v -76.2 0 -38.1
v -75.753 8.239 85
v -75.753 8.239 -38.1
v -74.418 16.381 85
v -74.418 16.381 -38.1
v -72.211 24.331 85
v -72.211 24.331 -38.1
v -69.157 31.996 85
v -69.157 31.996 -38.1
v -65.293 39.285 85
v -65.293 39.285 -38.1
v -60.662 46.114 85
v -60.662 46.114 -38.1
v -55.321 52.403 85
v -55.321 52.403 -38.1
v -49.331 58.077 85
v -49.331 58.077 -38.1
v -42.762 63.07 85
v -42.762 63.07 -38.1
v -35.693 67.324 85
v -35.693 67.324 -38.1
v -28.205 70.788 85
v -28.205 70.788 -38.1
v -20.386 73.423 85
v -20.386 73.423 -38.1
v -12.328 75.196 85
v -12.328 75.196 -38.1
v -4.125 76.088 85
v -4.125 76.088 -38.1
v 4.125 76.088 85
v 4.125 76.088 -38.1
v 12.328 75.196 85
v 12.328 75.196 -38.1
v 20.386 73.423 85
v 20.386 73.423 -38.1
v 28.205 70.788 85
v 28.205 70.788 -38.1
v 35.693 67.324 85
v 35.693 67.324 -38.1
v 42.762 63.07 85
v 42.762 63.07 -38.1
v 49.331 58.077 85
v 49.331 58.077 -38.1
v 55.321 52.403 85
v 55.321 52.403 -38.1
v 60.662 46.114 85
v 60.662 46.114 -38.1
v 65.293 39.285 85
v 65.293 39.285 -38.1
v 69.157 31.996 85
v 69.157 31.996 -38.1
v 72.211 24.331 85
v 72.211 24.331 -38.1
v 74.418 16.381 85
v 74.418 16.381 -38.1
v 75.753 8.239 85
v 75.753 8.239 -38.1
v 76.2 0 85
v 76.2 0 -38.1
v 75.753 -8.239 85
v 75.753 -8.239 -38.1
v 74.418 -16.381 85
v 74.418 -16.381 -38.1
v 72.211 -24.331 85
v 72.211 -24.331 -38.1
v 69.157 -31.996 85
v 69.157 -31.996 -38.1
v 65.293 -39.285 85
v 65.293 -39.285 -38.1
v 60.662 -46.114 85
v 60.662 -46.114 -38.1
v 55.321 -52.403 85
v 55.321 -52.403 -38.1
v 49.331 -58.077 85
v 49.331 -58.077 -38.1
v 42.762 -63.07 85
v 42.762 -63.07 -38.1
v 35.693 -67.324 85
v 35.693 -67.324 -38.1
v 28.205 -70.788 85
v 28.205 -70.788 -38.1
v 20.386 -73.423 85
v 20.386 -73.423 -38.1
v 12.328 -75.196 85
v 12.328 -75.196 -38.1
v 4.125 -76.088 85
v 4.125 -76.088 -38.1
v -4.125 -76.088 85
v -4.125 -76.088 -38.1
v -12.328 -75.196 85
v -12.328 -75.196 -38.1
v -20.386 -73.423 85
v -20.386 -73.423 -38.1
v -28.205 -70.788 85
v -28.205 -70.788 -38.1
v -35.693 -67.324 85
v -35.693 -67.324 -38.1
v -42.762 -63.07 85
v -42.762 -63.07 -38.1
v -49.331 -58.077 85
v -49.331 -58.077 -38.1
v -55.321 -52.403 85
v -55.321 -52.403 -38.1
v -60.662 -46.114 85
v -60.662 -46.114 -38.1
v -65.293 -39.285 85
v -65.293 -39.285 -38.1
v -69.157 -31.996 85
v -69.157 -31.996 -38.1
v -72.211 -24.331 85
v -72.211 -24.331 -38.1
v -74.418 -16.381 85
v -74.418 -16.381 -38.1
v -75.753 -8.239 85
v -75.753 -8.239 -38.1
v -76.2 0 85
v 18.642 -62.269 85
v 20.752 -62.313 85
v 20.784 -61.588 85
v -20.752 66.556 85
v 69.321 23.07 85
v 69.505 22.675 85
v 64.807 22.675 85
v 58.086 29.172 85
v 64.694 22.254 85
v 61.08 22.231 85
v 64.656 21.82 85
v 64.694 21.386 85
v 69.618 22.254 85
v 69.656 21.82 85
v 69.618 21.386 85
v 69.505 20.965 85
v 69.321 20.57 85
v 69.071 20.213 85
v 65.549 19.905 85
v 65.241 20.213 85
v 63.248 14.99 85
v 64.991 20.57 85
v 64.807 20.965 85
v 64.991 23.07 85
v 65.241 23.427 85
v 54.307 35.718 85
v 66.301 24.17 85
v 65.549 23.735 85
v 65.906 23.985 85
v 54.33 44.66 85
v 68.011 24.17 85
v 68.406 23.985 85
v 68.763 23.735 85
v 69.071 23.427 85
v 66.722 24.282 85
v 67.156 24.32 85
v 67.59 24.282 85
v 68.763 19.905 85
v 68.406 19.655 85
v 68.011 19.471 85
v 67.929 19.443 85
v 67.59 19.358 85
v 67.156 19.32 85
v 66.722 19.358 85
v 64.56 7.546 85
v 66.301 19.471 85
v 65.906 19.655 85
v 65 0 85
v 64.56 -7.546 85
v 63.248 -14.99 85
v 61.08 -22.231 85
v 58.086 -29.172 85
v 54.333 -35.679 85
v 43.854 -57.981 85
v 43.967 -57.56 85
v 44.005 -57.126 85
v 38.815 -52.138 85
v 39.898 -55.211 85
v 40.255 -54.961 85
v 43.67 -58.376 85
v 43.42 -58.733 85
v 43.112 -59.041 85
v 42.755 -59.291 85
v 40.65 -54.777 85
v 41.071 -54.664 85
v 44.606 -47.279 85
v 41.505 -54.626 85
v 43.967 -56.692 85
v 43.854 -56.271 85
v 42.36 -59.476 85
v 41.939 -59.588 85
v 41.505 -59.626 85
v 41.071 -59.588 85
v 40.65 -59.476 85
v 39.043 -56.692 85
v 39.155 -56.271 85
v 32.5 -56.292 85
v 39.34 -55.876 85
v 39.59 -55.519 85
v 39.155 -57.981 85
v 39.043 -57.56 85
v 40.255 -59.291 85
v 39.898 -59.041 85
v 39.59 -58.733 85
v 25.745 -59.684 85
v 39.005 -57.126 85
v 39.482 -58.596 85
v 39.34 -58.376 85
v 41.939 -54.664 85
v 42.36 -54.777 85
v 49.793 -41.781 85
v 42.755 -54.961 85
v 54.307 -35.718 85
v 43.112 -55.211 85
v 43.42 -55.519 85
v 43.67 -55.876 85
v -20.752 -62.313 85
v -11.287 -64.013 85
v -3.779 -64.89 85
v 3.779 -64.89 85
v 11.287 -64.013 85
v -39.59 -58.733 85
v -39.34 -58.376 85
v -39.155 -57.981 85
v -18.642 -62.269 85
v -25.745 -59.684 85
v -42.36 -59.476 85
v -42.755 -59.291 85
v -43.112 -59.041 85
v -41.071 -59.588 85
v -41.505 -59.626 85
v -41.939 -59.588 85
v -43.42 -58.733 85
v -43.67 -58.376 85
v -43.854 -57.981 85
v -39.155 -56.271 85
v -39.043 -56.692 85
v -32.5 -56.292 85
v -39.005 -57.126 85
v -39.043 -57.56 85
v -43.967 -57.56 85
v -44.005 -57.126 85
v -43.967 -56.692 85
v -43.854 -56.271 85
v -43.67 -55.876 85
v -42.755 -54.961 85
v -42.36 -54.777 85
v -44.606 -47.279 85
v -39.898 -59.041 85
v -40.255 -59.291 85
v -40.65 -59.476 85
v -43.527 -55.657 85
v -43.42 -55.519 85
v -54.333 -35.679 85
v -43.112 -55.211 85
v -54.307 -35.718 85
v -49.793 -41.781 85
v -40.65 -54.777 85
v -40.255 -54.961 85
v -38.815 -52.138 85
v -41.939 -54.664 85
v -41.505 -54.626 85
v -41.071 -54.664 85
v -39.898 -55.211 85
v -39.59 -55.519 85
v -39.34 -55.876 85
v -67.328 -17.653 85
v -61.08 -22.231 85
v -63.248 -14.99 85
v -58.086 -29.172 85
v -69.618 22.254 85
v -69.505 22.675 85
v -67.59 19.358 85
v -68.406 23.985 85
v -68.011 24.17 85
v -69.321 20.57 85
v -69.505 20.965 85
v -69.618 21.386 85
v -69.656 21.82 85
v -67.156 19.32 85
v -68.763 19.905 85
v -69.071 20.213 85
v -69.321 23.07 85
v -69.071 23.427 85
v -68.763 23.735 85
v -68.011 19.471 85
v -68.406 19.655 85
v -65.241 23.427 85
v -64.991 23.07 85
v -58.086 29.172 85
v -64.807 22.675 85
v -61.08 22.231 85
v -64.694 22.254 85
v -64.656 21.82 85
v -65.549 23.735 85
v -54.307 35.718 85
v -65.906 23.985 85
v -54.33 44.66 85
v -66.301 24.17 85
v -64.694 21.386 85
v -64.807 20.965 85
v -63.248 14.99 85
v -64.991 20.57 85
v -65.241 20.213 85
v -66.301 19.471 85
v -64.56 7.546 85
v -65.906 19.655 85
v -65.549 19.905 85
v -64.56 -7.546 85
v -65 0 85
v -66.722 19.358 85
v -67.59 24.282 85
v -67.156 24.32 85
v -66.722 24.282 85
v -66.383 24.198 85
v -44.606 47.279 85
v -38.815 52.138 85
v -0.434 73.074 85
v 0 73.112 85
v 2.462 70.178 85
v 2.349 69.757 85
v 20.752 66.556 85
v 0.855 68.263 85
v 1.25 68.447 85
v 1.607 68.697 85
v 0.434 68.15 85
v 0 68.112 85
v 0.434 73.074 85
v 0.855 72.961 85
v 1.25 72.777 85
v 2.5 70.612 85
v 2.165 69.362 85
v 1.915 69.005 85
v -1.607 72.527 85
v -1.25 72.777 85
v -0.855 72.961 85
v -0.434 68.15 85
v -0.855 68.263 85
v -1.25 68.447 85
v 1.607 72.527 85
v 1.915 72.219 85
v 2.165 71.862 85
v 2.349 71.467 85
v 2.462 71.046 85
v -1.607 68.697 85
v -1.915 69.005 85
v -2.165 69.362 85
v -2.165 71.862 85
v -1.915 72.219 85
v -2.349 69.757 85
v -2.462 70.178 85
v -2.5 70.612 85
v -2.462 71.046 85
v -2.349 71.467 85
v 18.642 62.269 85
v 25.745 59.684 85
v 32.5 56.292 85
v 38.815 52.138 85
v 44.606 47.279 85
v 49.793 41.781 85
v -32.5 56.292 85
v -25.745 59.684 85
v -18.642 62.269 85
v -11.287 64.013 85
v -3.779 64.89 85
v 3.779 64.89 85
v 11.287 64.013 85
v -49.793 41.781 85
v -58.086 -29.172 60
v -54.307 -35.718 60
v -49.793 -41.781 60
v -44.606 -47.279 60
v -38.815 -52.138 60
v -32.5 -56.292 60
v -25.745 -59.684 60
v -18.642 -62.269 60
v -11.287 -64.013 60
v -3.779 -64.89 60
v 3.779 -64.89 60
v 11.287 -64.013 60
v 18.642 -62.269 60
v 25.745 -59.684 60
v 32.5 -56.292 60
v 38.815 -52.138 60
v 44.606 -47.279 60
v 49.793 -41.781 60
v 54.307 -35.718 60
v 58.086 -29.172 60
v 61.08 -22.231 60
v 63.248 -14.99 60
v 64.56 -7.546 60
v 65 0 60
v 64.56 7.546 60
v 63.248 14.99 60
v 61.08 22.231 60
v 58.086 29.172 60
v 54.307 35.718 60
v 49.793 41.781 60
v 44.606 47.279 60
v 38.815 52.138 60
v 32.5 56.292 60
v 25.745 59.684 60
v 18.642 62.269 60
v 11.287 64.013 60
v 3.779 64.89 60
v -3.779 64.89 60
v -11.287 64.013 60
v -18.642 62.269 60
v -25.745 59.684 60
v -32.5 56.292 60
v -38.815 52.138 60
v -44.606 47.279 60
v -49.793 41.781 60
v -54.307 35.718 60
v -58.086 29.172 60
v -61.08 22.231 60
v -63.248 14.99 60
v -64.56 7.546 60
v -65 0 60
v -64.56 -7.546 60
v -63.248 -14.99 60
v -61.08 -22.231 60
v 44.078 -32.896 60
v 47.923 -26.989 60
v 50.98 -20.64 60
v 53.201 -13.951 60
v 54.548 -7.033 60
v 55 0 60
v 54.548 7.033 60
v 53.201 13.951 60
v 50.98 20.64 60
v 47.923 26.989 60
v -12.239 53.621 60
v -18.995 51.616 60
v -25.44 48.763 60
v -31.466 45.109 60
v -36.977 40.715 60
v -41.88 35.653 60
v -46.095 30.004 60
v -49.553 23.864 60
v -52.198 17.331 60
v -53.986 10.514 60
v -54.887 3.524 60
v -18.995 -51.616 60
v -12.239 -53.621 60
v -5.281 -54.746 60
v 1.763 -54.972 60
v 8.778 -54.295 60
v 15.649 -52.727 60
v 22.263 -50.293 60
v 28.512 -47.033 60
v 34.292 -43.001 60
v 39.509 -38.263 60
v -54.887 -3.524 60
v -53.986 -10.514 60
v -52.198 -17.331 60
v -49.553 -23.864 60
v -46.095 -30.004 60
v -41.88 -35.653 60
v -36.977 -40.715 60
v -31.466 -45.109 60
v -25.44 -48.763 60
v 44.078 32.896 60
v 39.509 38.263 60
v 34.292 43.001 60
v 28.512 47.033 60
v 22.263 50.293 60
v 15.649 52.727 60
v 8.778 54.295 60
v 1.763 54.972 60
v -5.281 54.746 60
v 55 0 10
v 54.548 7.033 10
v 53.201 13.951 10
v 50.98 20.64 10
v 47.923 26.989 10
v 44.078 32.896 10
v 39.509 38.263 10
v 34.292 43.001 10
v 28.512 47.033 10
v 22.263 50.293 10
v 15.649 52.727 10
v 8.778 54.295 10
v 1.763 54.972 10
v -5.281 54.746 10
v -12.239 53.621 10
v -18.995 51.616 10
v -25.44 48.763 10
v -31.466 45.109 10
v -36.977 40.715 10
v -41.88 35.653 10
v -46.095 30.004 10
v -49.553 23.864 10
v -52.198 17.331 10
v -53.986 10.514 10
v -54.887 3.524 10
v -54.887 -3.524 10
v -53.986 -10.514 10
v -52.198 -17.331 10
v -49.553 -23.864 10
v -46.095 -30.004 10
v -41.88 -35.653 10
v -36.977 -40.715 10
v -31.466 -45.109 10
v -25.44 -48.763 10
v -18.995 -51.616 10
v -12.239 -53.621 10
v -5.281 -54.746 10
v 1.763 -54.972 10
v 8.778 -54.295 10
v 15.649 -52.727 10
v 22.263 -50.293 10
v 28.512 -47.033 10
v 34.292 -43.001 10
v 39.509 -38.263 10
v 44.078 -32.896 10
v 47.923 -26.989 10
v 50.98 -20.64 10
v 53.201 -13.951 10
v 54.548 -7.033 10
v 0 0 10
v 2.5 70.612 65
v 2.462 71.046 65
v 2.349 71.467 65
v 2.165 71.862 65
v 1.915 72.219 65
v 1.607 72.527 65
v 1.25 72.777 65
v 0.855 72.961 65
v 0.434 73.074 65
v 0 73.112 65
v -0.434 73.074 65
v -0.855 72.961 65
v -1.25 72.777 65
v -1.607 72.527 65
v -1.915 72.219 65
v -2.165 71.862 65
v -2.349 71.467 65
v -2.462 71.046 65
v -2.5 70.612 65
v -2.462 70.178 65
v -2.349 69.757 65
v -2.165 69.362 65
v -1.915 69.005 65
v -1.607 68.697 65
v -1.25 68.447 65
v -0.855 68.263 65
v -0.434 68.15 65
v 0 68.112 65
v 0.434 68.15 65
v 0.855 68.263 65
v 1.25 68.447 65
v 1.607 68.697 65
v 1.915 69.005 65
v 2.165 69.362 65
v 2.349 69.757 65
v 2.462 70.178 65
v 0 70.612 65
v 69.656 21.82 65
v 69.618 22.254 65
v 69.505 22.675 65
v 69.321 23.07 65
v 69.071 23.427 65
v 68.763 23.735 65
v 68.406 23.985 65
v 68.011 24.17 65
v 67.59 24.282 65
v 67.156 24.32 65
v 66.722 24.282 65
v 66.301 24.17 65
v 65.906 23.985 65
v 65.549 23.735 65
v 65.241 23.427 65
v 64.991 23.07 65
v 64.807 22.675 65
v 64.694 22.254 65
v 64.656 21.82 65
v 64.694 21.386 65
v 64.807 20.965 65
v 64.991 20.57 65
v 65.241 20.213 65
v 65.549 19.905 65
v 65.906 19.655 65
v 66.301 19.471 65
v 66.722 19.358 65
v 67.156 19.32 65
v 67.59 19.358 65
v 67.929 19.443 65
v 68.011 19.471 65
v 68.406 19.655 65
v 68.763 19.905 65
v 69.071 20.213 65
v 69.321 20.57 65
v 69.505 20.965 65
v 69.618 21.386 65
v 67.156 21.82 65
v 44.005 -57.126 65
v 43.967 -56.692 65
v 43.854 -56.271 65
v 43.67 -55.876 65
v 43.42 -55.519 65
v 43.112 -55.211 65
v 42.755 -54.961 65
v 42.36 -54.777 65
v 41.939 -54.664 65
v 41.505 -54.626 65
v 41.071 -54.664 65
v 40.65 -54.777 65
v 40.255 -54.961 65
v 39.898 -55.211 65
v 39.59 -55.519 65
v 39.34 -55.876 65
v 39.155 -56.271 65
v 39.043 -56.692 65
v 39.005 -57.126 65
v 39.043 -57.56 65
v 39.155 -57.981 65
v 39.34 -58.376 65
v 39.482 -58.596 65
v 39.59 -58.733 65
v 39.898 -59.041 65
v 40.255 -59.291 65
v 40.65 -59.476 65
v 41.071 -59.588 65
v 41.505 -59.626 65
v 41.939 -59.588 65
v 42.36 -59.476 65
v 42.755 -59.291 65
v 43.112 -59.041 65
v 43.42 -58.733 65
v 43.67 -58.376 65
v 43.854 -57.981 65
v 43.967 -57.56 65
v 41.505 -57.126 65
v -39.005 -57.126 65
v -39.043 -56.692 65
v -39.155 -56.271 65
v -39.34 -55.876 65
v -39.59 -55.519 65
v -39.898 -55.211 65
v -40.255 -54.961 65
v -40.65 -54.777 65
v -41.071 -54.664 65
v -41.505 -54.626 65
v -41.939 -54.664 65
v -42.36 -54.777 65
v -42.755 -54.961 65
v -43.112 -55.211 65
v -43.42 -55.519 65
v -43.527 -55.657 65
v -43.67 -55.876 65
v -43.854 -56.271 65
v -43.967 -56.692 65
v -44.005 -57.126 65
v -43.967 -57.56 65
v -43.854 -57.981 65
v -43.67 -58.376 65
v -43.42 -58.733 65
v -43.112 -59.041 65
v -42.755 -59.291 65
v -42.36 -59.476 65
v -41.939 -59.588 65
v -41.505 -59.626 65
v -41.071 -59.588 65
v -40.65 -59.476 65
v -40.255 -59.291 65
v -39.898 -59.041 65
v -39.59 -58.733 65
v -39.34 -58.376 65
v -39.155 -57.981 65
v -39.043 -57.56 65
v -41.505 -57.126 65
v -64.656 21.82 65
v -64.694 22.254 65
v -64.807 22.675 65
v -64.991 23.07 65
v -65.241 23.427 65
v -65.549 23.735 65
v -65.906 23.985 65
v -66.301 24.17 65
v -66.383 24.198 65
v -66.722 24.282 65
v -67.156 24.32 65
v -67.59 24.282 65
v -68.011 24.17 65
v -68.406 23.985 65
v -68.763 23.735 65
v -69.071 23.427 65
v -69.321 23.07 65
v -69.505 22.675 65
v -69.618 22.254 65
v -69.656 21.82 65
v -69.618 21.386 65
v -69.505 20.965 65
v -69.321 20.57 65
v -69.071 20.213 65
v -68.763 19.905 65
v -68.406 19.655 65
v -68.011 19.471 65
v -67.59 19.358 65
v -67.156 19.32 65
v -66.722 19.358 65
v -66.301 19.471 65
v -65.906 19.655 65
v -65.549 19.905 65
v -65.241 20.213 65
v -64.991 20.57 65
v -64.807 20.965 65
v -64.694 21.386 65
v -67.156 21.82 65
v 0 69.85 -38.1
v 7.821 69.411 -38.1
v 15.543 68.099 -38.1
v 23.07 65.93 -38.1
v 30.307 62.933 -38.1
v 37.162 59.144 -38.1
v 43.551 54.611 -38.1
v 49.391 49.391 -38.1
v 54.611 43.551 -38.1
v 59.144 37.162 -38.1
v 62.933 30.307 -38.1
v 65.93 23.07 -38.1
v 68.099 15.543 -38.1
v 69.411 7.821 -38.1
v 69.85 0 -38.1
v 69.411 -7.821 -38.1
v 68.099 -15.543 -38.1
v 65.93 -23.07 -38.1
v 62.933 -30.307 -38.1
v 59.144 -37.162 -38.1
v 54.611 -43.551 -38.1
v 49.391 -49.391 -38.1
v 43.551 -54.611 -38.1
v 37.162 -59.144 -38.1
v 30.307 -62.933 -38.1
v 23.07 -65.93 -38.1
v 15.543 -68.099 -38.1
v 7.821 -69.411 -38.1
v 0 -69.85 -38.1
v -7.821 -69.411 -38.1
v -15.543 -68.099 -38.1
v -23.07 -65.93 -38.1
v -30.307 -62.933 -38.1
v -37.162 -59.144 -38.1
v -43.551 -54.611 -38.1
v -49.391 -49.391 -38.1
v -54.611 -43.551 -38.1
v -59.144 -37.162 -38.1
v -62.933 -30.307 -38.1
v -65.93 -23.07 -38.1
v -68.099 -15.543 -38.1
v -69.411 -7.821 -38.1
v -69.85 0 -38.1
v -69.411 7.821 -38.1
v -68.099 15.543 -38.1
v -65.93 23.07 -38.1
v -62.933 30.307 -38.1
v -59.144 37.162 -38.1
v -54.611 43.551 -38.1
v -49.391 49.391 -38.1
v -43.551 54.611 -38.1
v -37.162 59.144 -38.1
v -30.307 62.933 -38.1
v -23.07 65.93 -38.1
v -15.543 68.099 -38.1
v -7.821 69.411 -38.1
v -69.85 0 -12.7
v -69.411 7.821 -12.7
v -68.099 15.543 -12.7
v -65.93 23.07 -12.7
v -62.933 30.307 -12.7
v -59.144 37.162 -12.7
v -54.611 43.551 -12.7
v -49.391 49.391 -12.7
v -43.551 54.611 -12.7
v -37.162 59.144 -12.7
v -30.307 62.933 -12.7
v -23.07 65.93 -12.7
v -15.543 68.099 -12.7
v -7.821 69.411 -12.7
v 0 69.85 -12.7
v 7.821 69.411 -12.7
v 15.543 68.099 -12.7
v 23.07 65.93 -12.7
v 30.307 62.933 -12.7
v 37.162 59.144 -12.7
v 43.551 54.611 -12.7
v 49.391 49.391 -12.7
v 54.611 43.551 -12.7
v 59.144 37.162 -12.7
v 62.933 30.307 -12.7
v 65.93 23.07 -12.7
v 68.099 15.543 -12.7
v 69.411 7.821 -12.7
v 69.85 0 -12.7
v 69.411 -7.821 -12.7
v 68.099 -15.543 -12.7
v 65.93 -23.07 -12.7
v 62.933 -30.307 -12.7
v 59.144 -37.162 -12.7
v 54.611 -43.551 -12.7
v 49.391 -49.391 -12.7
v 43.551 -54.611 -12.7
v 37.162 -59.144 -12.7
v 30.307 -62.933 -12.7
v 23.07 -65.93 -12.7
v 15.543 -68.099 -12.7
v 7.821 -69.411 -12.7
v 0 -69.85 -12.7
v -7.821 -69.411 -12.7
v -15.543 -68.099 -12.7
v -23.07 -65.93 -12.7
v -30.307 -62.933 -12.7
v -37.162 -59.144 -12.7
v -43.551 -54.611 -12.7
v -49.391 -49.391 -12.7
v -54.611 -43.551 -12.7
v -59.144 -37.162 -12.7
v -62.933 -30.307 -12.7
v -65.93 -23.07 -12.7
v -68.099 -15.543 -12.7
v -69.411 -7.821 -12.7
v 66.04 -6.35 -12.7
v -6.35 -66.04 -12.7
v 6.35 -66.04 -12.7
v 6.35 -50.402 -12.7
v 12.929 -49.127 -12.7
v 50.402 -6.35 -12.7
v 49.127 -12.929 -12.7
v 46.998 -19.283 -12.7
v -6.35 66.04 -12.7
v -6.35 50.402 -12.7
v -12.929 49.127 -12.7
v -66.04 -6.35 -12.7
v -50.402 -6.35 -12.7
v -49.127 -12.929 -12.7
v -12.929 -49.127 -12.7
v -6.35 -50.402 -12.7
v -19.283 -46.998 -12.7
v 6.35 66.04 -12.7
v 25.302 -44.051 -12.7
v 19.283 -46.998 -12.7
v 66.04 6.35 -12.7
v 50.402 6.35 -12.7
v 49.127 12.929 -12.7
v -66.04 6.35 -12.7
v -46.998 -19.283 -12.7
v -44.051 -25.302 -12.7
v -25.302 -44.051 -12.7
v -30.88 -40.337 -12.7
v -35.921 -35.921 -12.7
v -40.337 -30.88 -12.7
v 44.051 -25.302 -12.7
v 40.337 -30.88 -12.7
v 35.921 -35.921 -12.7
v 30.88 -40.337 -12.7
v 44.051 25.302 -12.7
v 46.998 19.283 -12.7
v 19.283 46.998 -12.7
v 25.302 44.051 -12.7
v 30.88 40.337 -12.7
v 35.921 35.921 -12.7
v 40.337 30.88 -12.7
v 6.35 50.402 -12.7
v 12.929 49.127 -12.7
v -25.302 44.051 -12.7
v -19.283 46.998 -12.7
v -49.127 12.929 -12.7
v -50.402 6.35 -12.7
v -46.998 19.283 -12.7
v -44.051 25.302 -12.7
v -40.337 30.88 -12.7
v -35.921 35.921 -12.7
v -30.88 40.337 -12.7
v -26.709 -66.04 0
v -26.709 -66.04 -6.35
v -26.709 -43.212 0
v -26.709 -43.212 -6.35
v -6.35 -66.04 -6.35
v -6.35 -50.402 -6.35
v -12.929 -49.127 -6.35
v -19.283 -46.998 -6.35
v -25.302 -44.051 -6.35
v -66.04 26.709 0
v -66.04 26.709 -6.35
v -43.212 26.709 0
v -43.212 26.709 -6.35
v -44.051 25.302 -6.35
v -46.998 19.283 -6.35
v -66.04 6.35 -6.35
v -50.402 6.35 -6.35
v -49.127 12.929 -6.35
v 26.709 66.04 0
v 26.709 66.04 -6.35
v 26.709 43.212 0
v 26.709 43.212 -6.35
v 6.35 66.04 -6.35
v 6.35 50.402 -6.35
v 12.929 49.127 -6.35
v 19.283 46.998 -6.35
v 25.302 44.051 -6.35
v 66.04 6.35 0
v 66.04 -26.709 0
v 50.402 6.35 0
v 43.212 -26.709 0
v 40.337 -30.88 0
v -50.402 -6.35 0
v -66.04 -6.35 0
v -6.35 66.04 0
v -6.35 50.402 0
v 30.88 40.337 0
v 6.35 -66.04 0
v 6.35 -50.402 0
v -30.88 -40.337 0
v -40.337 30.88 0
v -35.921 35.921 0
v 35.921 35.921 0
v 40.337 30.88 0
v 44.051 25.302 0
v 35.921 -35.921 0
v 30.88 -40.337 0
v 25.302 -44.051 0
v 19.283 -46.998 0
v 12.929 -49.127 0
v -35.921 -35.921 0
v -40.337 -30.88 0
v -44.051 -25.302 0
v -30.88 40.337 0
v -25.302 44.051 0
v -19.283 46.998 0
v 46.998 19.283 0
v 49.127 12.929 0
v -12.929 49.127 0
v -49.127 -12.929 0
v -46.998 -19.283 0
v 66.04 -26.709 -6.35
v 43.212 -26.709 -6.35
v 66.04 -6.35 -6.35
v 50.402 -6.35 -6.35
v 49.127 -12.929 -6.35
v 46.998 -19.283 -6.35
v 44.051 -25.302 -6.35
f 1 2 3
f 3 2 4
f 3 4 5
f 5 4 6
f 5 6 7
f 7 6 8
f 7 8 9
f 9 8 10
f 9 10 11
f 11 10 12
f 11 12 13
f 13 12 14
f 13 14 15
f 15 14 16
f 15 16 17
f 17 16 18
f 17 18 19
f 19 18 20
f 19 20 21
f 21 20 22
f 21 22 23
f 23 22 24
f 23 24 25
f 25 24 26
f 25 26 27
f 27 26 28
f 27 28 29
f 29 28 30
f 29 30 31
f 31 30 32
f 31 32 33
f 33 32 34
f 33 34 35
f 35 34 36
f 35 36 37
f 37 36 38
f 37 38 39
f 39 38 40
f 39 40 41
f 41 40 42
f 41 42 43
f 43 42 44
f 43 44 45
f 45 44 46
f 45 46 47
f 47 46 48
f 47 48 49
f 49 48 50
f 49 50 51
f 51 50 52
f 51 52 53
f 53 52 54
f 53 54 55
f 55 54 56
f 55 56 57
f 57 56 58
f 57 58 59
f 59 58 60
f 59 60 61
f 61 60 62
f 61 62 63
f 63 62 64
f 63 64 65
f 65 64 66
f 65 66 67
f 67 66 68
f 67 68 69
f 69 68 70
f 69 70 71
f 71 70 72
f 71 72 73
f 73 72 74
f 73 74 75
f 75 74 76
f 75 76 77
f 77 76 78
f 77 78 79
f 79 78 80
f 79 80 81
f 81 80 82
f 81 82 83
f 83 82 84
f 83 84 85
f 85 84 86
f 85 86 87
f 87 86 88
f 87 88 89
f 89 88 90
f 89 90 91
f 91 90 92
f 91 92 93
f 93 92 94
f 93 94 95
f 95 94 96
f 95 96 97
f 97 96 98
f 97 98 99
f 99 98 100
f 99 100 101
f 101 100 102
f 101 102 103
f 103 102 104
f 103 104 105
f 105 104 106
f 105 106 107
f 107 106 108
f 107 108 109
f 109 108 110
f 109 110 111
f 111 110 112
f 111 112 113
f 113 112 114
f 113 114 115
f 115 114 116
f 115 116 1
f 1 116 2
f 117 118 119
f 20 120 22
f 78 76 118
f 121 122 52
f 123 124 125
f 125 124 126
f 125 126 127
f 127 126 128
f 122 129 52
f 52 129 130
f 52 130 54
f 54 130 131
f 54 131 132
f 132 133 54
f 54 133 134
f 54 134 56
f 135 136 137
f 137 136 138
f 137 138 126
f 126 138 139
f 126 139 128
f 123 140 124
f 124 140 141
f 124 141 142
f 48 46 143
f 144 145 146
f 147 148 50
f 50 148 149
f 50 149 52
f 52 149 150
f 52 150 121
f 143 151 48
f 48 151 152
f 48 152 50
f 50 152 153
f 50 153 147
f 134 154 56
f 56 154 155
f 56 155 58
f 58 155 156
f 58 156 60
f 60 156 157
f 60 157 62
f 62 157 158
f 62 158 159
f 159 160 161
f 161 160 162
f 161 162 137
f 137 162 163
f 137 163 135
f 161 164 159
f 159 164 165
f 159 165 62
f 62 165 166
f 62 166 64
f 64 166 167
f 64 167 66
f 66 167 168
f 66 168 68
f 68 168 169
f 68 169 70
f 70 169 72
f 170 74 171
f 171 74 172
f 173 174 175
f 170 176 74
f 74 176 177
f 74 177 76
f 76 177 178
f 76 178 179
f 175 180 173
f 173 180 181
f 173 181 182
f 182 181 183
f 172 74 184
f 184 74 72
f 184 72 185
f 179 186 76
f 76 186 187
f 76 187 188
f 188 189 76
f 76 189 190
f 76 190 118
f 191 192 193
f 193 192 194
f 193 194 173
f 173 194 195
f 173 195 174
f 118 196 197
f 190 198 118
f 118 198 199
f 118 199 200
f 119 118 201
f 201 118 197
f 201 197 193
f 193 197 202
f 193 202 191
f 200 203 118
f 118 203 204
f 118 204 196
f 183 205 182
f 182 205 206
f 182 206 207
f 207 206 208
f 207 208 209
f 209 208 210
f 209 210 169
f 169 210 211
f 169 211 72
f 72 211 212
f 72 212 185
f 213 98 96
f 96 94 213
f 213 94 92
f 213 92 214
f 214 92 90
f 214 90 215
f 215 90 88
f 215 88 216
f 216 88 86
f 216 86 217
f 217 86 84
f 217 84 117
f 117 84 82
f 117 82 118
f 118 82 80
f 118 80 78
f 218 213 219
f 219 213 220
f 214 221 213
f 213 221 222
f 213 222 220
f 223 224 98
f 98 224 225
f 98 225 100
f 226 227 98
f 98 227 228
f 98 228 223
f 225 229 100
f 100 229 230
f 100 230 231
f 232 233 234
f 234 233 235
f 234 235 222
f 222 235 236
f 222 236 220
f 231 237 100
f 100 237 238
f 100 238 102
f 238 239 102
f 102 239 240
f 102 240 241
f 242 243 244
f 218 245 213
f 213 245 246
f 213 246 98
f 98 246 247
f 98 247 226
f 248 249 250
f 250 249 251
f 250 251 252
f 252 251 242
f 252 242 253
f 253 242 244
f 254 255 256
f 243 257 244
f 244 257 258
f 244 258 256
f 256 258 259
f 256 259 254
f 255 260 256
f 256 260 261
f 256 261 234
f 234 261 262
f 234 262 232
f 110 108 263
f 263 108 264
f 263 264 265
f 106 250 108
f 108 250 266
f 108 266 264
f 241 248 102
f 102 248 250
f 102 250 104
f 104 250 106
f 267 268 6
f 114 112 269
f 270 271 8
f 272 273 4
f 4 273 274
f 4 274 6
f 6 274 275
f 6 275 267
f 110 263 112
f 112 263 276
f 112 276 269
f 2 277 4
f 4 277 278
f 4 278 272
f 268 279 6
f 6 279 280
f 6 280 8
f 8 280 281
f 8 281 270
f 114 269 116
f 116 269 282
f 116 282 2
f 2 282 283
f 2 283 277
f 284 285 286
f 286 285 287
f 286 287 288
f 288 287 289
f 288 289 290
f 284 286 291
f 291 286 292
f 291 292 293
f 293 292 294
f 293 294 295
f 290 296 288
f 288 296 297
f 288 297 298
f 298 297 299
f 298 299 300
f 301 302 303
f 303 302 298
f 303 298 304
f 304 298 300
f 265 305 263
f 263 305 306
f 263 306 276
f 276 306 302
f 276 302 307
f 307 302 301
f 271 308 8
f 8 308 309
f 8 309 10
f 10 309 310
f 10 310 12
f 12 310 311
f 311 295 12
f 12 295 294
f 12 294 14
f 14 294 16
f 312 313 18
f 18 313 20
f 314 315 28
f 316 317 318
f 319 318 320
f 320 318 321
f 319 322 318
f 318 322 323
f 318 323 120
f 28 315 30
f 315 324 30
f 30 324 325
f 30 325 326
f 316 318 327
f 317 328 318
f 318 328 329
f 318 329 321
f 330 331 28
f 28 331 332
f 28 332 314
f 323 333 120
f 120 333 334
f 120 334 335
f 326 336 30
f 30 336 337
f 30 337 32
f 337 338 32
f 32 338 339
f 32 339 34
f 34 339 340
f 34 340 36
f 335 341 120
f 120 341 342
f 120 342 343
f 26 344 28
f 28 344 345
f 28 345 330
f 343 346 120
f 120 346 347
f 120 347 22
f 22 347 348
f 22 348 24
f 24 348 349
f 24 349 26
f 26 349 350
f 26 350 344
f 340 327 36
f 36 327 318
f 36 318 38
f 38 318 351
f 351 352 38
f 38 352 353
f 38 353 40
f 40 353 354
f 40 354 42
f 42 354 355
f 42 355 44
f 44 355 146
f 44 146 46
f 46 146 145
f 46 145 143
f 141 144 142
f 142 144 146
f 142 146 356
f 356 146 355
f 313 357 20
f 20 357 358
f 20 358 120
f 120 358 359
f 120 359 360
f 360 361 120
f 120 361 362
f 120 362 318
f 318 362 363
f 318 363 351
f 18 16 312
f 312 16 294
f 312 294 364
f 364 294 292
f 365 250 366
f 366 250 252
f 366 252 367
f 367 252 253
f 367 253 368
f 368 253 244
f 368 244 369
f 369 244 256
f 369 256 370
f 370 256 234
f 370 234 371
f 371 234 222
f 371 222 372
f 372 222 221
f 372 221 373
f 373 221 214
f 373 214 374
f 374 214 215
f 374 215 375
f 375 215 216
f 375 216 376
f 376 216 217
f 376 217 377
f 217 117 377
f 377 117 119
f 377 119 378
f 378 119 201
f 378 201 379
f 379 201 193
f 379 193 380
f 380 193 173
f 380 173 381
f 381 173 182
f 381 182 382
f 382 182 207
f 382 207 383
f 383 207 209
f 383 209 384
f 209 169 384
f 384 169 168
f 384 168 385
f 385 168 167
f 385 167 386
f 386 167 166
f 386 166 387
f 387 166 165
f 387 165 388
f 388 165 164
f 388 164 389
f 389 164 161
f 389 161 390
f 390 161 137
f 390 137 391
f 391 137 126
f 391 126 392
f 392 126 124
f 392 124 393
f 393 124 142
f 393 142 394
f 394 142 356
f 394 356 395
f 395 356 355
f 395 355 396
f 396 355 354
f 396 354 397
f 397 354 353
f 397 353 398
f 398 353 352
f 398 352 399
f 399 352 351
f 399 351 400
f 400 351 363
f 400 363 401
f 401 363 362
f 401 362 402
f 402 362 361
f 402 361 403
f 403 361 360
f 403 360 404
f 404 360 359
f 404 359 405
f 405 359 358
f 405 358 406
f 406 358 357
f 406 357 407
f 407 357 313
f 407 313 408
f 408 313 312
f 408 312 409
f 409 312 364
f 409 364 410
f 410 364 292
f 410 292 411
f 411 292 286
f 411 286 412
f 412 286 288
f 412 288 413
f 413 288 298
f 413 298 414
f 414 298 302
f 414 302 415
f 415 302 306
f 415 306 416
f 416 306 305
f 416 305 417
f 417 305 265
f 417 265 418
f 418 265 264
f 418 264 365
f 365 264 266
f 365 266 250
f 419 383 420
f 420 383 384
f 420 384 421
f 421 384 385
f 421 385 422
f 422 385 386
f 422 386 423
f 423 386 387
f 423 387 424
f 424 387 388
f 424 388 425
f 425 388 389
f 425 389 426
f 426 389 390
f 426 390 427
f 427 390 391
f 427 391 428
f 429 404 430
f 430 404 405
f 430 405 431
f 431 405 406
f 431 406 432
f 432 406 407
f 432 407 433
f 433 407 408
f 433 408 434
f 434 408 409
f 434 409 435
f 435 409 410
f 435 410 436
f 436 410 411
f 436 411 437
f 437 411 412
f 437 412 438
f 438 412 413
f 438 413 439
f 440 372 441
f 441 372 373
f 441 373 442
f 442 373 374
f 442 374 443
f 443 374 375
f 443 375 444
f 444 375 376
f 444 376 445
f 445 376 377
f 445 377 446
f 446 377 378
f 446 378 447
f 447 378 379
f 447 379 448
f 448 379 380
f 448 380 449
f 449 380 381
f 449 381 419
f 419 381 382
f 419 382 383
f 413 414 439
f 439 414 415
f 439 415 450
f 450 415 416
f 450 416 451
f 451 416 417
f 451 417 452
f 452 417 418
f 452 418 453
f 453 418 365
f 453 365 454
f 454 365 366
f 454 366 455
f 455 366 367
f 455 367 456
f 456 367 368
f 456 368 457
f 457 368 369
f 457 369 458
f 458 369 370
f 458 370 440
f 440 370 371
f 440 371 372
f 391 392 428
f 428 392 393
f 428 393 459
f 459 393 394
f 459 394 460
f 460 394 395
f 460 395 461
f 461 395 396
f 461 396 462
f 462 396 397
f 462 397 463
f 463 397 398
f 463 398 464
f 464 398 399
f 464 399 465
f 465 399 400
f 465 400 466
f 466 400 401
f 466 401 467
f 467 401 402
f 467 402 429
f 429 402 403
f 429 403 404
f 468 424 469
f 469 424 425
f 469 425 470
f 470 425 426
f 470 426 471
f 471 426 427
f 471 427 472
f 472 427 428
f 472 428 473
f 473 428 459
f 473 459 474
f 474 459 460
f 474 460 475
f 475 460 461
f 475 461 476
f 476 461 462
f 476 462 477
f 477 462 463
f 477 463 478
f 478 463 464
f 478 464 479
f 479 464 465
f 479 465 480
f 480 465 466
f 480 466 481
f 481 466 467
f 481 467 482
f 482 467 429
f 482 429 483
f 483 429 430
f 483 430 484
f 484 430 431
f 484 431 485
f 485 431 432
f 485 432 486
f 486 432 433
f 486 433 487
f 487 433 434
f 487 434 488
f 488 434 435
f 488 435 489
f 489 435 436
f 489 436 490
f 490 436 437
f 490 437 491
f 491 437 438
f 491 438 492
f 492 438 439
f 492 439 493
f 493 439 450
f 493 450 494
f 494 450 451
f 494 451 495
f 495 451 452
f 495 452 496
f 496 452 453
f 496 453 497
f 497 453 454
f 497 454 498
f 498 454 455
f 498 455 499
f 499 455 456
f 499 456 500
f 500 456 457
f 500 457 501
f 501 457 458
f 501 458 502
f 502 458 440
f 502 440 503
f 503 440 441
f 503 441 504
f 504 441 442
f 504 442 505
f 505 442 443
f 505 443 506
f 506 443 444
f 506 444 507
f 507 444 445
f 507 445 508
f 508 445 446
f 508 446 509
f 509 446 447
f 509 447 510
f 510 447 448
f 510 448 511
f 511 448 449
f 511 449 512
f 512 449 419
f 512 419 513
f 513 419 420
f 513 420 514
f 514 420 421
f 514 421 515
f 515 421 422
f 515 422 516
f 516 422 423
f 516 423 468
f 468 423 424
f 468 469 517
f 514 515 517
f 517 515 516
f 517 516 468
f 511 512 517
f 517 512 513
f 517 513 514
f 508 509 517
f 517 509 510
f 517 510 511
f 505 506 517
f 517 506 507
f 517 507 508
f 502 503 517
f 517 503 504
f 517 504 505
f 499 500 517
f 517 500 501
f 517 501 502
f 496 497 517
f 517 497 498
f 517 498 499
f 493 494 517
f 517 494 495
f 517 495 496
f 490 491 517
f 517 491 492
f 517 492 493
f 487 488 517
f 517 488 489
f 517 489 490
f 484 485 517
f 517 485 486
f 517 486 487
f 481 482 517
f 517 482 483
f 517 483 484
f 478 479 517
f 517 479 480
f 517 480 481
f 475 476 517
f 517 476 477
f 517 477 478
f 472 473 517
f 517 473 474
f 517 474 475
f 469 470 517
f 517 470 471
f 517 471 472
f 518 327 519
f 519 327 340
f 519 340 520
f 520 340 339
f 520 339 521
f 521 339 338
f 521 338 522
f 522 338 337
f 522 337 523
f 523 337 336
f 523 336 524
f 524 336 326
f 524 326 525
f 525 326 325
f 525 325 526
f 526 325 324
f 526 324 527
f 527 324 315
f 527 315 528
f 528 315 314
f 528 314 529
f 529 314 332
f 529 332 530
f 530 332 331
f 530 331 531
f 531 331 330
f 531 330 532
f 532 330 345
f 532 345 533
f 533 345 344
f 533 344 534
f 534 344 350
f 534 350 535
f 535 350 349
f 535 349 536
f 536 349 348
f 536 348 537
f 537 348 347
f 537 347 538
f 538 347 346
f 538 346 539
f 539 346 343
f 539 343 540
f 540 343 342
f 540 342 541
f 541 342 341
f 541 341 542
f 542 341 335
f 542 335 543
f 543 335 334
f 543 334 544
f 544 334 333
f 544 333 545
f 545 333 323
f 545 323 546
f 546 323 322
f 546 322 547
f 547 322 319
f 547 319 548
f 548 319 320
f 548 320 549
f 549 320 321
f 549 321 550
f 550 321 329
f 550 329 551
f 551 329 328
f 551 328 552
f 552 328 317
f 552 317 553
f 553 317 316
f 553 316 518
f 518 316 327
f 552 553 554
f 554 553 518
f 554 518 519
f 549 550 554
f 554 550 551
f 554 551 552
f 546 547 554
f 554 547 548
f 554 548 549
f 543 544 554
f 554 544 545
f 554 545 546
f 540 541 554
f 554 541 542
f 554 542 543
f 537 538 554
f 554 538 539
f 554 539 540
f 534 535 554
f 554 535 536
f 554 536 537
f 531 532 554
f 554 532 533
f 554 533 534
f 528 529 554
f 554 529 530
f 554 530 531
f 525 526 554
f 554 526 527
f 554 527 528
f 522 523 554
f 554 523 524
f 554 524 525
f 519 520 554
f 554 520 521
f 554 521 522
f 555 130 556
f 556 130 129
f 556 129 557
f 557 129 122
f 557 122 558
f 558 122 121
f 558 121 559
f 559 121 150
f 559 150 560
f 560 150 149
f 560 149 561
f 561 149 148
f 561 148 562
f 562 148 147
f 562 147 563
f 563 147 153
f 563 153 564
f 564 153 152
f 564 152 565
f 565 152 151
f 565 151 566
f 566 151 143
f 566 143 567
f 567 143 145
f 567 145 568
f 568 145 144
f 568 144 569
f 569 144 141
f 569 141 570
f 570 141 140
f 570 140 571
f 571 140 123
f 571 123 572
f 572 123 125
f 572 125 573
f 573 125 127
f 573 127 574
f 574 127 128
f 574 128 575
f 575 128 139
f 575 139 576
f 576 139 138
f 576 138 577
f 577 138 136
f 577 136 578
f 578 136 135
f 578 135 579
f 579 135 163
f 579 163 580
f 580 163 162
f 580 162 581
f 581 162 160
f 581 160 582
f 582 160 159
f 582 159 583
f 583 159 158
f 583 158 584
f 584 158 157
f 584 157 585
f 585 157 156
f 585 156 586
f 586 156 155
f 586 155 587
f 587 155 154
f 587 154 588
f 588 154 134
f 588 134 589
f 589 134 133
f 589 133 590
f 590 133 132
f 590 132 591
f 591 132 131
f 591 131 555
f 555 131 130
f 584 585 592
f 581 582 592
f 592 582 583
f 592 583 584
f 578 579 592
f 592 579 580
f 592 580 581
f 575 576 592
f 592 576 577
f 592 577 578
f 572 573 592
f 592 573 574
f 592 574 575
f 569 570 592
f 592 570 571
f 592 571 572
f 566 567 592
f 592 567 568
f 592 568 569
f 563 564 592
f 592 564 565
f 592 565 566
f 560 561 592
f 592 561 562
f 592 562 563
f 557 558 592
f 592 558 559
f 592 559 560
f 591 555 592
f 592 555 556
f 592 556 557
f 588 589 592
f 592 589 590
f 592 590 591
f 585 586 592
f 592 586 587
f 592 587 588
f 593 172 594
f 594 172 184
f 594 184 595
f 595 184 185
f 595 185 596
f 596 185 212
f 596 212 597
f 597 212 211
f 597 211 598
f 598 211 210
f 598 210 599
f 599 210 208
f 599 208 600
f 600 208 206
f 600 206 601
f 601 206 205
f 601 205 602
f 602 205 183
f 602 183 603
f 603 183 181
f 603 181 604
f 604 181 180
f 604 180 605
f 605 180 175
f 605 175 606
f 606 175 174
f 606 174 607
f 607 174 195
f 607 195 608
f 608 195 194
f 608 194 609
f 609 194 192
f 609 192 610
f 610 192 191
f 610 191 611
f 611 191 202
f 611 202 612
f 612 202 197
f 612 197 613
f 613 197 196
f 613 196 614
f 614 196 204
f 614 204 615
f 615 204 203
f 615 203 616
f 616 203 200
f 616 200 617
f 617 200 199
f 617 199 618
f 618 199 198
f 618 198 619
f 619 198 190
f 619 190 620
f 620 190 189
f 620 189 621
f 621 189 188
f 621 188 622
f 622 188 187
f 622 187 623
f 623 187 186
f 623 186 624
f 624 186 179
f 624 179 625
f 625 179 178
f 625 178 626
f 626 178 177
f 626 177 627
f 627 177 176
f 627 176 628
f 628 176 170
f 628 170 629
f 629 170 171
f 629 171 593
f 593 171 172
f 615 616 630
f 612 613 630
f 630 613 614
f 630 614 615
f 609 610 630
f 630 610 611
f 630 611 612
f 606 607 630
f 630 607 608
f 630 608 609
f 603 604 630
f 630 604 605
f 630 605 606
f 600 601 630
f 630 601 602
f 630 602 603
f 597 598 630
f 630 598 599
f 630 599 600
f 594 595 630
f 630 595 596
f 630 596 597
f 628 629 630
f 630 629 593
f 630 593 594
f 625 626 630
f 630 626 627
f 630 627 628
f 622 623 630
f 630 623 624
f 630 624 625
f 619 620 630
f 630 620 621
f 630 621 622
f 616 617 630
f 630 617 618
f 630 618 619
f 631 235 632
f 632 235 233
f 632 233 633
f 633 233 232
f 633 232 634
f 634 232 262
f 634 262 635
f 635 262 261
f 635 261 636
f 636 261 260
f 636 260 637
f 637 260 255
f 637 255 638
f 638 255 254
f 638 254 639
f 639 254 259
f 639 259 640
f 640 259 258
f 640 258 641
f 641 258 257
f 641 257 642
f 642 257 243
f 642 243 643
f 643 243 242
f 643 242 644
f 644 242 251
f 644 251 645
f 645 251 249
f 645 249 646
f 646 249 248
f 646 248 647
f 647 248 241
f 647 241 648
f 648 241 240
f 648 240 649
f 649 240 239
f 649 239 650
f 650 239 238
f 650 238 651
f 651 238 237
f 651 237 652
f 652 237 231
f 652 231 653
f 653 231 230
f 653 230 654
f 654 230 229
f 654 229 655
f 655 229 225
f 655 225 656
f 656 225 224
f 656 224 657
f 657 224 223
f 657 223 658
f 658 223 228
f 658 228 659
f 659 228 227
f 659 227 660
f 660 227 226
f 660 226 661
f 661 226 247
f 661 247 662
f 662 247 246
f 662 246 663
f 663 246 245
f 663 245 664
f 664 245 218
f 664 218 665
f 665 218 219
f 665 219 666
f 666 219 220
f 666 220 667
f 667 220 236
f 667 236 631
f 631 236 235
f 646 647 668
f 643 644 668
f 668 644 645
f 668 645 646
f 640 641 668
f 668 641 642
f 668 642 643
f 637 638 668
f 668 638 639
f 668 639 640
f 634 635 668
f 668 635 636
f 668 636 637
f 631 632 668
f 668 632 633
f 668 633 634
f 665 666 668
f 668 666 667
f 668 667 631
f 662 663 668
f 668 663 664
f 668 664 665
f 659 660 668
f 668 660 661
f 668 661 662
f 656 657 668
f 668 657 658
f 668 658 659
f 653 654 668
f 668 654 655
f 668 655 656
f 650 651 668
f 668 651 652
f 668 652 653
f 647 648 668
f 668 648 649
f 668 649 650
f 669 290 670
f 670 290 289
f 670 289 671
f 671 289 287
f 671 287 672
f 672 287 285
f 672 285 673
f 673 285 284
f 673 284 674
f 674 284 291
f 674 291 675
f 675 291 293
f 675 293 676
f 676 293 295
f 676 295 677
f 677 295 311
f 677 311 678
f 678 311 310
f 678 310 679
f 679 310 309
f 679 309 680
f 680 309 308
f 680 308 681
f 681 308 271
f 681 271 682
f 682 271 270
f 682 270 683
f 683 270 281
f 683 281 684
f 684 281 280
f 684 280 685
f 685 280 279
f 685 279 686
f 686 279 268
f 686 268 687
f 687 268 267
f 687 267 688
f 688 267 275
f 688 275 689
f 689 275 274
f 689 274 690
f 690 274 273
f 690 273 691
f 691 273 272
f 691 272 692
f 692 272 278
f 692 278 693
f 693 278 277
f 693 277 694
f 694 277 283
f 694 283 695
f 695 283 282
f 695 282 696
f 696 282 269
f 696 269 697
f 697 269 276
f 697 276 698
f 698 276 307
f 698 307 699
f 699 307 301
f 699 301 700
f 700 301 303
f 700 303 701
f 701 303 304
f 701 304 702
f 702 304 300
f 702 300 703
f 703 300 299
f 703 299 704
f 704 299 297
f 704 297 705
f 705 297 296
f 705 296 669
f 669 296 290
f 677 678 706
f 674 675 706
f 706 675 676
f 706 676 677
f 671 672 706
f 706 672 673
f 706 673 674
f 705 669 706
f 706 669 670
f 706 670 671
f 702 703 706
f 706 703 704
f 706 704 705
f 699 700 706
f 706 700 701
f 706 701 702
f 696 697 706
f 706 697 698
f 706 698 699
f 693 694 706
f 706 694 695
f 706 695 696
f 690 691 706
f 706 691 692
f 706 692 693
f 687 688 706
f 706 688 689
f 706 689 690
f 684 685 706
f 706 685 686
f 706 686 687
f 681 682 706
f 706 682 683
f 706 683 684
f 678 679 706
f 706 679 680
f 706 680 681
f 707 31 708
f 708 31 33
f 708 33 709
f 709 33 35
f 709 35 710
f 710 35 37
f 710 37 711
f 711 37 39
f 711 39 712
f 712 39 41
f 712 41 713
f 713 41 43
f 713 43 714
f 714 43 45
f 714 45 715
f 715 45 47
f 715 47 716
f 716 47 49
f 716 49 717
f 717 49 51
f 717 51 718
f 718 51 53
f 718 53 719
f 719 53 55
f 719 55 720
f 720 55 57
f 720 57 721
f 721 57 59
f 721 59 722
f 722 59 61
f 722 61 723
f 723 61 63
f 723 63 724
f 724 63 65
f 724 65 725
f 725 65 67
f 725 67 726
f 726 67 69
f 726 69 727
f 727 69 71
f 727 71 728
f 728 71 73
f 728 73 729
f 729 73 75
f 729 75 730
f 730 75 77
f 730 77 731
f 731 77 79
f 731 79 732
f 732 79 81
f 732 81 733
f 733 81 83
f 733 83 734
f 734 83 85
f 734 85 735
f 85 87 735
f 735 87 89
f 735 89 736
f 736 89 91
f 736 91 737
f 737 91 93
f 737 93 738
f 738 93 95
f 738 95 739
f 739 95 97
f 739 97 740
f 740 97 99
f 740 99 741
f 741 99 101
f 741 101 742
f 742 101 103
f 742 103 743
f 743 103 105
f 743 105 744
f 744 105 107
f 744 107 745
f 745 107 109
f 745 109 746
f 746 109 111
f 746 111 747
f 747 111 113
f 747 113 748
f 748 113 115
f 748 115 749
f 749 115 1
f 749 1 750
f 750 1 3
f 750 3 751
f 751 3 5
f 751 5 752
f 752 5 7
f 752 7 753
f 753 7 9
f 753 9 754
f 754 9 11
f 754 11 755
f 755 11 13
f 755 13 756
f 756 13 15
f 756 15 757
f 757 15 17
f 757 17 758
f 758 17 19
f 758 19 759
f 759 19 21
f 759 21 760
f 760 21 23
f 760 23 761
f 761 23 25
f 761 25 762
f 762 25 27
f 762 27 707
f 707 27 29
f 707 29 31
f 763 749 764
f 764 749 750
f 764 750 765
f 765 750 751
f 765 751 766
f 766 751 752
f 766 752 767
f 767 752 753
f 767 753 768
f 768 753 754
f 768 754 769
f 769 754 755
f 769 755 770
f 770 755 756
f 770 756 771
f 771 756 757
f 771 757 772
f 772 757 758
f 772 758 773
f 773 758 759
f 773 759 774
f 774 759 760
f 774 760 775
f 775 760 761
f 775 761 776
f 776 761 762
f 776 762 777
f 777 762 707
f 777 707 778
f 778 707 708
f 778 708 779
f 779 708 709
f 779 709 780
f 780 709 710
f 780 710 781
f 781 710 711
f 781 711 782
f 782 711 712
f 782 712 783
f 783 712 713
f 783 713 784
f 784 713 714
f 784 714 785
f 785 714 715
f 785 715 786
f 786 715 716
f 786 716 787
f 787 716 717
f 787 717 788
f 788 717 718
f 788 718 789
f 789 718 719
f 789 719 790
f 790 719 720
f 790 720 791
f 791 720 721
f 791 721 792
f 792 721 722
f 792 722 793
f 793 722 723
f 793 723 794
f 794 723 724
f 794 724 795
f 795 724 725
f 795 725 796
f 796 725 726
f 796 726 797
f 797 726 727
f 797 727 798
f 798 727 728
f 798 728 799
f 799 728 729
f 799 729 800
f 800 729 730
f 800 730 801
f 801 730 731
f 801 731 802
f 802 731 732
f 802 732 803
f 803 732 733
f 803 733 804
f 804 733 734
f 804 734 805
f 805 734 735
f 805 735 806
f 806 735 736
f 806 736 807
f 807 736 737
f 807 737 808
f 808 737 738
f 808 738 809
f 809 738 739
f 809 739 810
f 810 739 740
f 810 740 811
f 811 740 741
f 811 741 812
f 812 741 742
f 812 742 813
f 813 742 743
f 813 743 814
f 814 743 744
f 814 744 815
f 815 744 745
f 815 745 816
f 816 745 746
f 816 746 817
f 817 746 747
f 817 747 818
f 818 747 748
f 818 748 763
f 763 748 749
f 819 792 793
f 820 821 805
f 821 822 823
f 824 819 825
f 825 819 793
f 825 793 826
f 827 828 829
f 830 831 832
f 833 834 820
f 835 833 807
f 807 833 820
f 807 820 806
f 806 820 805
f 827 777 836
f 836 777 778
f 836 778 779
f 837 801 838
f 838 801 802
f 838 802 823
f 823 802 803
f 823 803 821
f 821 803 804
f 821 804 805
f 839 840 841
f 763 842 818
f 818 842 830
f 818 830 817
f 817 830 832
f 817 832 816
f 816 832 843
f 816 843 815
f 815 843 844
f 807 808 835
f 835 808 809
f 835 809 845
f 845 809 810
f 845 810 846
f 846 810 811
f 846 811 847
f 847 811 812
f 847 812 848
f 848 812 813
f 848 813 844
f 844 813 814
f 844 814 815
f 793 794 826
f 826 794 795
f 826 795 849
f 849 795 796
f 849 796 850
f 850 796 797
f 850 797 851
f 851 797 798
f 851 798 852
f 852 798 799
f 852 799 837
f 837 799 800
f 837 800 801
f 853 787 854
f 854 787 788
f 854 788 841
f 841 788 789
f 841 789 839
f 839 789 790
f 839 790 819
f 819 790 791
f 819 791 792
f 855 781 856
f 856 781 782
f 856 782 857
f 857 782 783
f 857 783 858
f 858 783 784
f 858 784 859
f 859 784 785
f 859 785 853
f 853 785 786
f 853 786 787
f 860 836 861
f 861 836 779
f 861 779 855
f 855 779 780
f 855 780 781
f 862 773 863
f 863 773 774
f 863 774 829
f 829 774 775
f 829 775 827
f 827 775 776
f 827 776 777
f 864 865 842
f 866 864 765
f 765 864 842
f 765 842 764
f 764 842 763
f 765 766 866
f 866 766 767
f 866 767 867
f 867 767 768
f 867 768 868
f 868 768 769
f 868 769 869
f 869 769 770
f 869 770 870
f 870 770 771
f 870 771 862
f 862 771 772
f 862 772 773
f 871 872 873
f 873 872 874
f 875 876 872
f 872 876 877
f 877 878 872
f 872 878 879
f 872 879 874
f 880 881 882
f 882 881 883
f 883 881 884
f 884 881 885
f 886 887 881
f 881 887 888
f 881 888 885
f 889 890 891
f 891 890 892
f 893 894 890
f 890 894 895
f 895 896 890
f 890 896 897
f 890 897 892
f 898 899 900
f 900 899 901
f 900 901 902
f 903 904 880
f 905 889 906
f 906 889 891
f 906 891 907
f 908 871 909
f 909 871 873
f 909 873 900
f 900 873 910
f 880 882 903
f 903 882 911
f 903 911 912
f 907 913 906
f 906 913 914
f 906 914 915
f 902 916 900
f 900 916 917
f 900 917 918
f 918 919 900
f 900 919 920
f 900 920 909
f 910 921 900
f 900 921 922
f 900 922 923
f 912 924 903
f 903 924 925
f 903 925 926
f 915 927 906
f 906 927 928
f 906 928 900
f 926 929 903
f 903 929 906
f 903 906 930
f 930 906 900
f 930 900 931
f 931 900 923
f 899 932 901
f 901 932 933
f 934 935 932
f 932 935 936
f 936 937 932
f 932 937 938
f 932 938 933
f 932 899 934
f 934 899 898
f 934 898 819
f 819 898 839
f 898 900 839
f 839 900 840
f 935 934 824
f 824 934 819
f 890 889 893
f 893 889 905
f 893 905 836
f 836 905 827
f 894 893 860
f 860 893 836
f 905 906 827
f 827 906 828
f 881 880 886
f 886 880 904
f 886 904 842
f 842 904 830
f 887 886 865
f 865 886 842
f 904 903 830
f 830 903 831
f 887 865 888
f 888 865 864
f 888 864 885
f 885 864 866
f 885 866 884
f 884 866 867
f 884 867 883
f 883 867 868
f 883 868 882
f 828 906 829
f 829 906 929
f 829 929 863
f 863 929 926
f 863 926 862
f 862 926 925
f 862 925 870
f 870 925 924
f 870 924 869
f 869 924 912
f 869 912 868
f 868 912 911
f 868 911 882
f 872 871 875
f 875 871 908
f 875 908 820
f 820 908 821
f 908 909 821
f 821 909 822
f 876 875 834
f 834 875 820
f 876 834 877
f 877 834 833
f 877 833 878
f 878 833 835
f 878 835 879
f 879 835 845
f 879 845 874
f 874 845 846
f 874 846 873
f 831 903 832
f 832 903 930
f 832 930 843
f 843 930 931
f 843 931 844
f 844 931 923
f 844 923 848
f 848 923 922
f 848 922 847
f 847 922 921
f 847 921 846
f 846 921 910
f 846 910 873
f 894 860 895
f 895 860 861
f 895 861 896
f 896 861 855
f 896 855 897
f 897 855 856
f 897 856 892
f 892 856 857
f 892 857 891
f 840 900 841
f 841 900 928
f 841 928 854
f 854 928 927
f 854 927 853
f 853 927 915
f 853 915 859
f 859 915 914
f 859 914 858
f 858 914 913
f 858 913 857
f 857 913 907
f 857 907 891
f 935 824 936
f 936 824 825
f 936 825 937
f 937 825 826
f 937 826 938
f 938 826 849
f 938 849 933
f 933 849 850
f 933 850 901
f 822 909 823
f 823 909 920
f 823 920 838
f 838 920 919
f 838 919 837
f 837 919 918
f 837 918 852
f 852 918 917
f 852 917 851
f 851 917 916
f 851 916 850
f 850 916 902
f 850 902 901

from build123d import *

# Parameters (mm, degrees)
SKETCH2_R           = 76.2
BOSS_EXTRUDE1_DEPTH = 85
SKETCH4_R           = 65
CUT_EXTRUDE2_DEPTH  = 25
SKETCH5_R           = 55
CUT_EXTRUDE3_DEPTH  = 50
SKETCH7_R           = 2.5
CUT_EXTRUDE4_DEPTH  = 20
CIRPATTERN1_COUNT   = 5
BOSS_EXTRUDE2_START = 38.1
SKETCH8_R           = 76.2
SKETCH8_R_2         = 50.8
BOSS_EXTRUDE2_DEPTH = 38.1
CUT_EXTRUDE5_DEPTH  = 66.04
CIRPATTERN2_COUNT   = 4
SKETCH12_R          = 69.85
CUT_EXTRUDE6_DEPTH  = 25.4


with BuildPart() as part:
    # Sketch2 → Boss-Extrude1 (new body)
    with BuildSketch(Plane(origin=(0, 0, 0), x_dir=(0, 1, 0), z_dir=(0, 0, 1))):
        with Locations(Location((0, 0, 0), (0, 0, 270))):
            Circle(SKETCH2_R)
    extrude(amount=BOSS_EXTRUDE1_DEPTH)

    # Sketch4 → Cut-Extrude2 (cut)
    with BuildSketch(Plane.XY.offset(85)):
        Circle(SKETCH4_R)
    extrude(amount=-CUT_EXTRUDE2_DEPTH, mode=Mode.SUBTRACT)

    # Sketch5 → Cut-Extrude3 (cut)
    with BuildSketch(Plane.XY.offset(60)):
        Circle(SKETCH5_R)
    extrude(amount=-CUT_EXTRUDE3_DEPTH, mode=Mode.SUBTRACT)

    # Sketch7 → Cut-Extrude4 (cut)
    with BuildSketch(Plane.XY.offset(85)):
        with Locations((0, 70.612)):
            Circle(SKETCH7_R)
    cut_extrude4 = extrude(amount=-CUT_EXTRUDE4_DEPTH, mode=Mode.SUBTRACT)

    # CirPattern1: Cut-Extrude4 ×5 about axis
    cirpattern1_axis = Axis((0, 0, 0), (0, 0, 1))
    for i in range(1, CIRPATTERN1_COUNT):
        add(cut_extrude4.rotate(cirpattern1_axis, i * 360 / CIRPATTERN1_COUNT), mode=Mode.SUBTRACT)

    # Sketch8 → Boss-Extrude2 (add)
    with BuildSketch(Plane(origin=(0, 0, 0), x_dir=(1, 0, 0), z_dir=(0, 0, -1)).offset(BOSS_EXTRUDE2_START)):
        with Locations(Location((0, 0, 0), (0, 0, 180))):
            Circle(SKETCH8_R)
        Circle(SKETCH8_R_2, mode=Mode.SUBTRACT)
    extrude(amount=-BOSS_EXTRUDE2_DEPTH)

    # Sketch10 → Cut-Extrude5 (cut)
    with BuildSketch(Plane(origin=(0, 0, 0), x_dir=(-1, 0, 0), z_dir=(0, 1, 0))):
        Polygon((-6.35, 0), (-6.35, -38.1), (6.35, -38.1), (6.35, -6.35), (26.709025115, -6.35), (26.709025115, 0), align=None)
    cut_extrude5 = extrude(amount=-CUT_EXTRUDE5_DEPTH, mode=Mode.SUBTRACT)

    # CirPattern2: Cut-Extrude5 ×4 about axis
    cirpattern2_axis = Axis((0, 0, 0), (0, 0, 1))
    for i in range(1, CIRPATTERN2_COUNT):
        add(cut_extrude5.rotate(cirpattern2_axis, i * 360 / CIRPATTERN2_COUNT), mode=Mode.SUBTRACT)

    # Sketch12 → Cut-Extrude6 (cut)
    with BuildSketch(Plane(origin=(0, 0, -38.1), x_dir=(1, 0, 0), z_dir=(0, 0, -1))):
        with Locations(Location((0, 0, 0), (0, 0, 180))):
            Circle(SKETCH12_R)
    extrude(amount=-CUT_EXTRUDE6_DEPTH, mode=Mode.SUBTRACT)


solid = part.part
